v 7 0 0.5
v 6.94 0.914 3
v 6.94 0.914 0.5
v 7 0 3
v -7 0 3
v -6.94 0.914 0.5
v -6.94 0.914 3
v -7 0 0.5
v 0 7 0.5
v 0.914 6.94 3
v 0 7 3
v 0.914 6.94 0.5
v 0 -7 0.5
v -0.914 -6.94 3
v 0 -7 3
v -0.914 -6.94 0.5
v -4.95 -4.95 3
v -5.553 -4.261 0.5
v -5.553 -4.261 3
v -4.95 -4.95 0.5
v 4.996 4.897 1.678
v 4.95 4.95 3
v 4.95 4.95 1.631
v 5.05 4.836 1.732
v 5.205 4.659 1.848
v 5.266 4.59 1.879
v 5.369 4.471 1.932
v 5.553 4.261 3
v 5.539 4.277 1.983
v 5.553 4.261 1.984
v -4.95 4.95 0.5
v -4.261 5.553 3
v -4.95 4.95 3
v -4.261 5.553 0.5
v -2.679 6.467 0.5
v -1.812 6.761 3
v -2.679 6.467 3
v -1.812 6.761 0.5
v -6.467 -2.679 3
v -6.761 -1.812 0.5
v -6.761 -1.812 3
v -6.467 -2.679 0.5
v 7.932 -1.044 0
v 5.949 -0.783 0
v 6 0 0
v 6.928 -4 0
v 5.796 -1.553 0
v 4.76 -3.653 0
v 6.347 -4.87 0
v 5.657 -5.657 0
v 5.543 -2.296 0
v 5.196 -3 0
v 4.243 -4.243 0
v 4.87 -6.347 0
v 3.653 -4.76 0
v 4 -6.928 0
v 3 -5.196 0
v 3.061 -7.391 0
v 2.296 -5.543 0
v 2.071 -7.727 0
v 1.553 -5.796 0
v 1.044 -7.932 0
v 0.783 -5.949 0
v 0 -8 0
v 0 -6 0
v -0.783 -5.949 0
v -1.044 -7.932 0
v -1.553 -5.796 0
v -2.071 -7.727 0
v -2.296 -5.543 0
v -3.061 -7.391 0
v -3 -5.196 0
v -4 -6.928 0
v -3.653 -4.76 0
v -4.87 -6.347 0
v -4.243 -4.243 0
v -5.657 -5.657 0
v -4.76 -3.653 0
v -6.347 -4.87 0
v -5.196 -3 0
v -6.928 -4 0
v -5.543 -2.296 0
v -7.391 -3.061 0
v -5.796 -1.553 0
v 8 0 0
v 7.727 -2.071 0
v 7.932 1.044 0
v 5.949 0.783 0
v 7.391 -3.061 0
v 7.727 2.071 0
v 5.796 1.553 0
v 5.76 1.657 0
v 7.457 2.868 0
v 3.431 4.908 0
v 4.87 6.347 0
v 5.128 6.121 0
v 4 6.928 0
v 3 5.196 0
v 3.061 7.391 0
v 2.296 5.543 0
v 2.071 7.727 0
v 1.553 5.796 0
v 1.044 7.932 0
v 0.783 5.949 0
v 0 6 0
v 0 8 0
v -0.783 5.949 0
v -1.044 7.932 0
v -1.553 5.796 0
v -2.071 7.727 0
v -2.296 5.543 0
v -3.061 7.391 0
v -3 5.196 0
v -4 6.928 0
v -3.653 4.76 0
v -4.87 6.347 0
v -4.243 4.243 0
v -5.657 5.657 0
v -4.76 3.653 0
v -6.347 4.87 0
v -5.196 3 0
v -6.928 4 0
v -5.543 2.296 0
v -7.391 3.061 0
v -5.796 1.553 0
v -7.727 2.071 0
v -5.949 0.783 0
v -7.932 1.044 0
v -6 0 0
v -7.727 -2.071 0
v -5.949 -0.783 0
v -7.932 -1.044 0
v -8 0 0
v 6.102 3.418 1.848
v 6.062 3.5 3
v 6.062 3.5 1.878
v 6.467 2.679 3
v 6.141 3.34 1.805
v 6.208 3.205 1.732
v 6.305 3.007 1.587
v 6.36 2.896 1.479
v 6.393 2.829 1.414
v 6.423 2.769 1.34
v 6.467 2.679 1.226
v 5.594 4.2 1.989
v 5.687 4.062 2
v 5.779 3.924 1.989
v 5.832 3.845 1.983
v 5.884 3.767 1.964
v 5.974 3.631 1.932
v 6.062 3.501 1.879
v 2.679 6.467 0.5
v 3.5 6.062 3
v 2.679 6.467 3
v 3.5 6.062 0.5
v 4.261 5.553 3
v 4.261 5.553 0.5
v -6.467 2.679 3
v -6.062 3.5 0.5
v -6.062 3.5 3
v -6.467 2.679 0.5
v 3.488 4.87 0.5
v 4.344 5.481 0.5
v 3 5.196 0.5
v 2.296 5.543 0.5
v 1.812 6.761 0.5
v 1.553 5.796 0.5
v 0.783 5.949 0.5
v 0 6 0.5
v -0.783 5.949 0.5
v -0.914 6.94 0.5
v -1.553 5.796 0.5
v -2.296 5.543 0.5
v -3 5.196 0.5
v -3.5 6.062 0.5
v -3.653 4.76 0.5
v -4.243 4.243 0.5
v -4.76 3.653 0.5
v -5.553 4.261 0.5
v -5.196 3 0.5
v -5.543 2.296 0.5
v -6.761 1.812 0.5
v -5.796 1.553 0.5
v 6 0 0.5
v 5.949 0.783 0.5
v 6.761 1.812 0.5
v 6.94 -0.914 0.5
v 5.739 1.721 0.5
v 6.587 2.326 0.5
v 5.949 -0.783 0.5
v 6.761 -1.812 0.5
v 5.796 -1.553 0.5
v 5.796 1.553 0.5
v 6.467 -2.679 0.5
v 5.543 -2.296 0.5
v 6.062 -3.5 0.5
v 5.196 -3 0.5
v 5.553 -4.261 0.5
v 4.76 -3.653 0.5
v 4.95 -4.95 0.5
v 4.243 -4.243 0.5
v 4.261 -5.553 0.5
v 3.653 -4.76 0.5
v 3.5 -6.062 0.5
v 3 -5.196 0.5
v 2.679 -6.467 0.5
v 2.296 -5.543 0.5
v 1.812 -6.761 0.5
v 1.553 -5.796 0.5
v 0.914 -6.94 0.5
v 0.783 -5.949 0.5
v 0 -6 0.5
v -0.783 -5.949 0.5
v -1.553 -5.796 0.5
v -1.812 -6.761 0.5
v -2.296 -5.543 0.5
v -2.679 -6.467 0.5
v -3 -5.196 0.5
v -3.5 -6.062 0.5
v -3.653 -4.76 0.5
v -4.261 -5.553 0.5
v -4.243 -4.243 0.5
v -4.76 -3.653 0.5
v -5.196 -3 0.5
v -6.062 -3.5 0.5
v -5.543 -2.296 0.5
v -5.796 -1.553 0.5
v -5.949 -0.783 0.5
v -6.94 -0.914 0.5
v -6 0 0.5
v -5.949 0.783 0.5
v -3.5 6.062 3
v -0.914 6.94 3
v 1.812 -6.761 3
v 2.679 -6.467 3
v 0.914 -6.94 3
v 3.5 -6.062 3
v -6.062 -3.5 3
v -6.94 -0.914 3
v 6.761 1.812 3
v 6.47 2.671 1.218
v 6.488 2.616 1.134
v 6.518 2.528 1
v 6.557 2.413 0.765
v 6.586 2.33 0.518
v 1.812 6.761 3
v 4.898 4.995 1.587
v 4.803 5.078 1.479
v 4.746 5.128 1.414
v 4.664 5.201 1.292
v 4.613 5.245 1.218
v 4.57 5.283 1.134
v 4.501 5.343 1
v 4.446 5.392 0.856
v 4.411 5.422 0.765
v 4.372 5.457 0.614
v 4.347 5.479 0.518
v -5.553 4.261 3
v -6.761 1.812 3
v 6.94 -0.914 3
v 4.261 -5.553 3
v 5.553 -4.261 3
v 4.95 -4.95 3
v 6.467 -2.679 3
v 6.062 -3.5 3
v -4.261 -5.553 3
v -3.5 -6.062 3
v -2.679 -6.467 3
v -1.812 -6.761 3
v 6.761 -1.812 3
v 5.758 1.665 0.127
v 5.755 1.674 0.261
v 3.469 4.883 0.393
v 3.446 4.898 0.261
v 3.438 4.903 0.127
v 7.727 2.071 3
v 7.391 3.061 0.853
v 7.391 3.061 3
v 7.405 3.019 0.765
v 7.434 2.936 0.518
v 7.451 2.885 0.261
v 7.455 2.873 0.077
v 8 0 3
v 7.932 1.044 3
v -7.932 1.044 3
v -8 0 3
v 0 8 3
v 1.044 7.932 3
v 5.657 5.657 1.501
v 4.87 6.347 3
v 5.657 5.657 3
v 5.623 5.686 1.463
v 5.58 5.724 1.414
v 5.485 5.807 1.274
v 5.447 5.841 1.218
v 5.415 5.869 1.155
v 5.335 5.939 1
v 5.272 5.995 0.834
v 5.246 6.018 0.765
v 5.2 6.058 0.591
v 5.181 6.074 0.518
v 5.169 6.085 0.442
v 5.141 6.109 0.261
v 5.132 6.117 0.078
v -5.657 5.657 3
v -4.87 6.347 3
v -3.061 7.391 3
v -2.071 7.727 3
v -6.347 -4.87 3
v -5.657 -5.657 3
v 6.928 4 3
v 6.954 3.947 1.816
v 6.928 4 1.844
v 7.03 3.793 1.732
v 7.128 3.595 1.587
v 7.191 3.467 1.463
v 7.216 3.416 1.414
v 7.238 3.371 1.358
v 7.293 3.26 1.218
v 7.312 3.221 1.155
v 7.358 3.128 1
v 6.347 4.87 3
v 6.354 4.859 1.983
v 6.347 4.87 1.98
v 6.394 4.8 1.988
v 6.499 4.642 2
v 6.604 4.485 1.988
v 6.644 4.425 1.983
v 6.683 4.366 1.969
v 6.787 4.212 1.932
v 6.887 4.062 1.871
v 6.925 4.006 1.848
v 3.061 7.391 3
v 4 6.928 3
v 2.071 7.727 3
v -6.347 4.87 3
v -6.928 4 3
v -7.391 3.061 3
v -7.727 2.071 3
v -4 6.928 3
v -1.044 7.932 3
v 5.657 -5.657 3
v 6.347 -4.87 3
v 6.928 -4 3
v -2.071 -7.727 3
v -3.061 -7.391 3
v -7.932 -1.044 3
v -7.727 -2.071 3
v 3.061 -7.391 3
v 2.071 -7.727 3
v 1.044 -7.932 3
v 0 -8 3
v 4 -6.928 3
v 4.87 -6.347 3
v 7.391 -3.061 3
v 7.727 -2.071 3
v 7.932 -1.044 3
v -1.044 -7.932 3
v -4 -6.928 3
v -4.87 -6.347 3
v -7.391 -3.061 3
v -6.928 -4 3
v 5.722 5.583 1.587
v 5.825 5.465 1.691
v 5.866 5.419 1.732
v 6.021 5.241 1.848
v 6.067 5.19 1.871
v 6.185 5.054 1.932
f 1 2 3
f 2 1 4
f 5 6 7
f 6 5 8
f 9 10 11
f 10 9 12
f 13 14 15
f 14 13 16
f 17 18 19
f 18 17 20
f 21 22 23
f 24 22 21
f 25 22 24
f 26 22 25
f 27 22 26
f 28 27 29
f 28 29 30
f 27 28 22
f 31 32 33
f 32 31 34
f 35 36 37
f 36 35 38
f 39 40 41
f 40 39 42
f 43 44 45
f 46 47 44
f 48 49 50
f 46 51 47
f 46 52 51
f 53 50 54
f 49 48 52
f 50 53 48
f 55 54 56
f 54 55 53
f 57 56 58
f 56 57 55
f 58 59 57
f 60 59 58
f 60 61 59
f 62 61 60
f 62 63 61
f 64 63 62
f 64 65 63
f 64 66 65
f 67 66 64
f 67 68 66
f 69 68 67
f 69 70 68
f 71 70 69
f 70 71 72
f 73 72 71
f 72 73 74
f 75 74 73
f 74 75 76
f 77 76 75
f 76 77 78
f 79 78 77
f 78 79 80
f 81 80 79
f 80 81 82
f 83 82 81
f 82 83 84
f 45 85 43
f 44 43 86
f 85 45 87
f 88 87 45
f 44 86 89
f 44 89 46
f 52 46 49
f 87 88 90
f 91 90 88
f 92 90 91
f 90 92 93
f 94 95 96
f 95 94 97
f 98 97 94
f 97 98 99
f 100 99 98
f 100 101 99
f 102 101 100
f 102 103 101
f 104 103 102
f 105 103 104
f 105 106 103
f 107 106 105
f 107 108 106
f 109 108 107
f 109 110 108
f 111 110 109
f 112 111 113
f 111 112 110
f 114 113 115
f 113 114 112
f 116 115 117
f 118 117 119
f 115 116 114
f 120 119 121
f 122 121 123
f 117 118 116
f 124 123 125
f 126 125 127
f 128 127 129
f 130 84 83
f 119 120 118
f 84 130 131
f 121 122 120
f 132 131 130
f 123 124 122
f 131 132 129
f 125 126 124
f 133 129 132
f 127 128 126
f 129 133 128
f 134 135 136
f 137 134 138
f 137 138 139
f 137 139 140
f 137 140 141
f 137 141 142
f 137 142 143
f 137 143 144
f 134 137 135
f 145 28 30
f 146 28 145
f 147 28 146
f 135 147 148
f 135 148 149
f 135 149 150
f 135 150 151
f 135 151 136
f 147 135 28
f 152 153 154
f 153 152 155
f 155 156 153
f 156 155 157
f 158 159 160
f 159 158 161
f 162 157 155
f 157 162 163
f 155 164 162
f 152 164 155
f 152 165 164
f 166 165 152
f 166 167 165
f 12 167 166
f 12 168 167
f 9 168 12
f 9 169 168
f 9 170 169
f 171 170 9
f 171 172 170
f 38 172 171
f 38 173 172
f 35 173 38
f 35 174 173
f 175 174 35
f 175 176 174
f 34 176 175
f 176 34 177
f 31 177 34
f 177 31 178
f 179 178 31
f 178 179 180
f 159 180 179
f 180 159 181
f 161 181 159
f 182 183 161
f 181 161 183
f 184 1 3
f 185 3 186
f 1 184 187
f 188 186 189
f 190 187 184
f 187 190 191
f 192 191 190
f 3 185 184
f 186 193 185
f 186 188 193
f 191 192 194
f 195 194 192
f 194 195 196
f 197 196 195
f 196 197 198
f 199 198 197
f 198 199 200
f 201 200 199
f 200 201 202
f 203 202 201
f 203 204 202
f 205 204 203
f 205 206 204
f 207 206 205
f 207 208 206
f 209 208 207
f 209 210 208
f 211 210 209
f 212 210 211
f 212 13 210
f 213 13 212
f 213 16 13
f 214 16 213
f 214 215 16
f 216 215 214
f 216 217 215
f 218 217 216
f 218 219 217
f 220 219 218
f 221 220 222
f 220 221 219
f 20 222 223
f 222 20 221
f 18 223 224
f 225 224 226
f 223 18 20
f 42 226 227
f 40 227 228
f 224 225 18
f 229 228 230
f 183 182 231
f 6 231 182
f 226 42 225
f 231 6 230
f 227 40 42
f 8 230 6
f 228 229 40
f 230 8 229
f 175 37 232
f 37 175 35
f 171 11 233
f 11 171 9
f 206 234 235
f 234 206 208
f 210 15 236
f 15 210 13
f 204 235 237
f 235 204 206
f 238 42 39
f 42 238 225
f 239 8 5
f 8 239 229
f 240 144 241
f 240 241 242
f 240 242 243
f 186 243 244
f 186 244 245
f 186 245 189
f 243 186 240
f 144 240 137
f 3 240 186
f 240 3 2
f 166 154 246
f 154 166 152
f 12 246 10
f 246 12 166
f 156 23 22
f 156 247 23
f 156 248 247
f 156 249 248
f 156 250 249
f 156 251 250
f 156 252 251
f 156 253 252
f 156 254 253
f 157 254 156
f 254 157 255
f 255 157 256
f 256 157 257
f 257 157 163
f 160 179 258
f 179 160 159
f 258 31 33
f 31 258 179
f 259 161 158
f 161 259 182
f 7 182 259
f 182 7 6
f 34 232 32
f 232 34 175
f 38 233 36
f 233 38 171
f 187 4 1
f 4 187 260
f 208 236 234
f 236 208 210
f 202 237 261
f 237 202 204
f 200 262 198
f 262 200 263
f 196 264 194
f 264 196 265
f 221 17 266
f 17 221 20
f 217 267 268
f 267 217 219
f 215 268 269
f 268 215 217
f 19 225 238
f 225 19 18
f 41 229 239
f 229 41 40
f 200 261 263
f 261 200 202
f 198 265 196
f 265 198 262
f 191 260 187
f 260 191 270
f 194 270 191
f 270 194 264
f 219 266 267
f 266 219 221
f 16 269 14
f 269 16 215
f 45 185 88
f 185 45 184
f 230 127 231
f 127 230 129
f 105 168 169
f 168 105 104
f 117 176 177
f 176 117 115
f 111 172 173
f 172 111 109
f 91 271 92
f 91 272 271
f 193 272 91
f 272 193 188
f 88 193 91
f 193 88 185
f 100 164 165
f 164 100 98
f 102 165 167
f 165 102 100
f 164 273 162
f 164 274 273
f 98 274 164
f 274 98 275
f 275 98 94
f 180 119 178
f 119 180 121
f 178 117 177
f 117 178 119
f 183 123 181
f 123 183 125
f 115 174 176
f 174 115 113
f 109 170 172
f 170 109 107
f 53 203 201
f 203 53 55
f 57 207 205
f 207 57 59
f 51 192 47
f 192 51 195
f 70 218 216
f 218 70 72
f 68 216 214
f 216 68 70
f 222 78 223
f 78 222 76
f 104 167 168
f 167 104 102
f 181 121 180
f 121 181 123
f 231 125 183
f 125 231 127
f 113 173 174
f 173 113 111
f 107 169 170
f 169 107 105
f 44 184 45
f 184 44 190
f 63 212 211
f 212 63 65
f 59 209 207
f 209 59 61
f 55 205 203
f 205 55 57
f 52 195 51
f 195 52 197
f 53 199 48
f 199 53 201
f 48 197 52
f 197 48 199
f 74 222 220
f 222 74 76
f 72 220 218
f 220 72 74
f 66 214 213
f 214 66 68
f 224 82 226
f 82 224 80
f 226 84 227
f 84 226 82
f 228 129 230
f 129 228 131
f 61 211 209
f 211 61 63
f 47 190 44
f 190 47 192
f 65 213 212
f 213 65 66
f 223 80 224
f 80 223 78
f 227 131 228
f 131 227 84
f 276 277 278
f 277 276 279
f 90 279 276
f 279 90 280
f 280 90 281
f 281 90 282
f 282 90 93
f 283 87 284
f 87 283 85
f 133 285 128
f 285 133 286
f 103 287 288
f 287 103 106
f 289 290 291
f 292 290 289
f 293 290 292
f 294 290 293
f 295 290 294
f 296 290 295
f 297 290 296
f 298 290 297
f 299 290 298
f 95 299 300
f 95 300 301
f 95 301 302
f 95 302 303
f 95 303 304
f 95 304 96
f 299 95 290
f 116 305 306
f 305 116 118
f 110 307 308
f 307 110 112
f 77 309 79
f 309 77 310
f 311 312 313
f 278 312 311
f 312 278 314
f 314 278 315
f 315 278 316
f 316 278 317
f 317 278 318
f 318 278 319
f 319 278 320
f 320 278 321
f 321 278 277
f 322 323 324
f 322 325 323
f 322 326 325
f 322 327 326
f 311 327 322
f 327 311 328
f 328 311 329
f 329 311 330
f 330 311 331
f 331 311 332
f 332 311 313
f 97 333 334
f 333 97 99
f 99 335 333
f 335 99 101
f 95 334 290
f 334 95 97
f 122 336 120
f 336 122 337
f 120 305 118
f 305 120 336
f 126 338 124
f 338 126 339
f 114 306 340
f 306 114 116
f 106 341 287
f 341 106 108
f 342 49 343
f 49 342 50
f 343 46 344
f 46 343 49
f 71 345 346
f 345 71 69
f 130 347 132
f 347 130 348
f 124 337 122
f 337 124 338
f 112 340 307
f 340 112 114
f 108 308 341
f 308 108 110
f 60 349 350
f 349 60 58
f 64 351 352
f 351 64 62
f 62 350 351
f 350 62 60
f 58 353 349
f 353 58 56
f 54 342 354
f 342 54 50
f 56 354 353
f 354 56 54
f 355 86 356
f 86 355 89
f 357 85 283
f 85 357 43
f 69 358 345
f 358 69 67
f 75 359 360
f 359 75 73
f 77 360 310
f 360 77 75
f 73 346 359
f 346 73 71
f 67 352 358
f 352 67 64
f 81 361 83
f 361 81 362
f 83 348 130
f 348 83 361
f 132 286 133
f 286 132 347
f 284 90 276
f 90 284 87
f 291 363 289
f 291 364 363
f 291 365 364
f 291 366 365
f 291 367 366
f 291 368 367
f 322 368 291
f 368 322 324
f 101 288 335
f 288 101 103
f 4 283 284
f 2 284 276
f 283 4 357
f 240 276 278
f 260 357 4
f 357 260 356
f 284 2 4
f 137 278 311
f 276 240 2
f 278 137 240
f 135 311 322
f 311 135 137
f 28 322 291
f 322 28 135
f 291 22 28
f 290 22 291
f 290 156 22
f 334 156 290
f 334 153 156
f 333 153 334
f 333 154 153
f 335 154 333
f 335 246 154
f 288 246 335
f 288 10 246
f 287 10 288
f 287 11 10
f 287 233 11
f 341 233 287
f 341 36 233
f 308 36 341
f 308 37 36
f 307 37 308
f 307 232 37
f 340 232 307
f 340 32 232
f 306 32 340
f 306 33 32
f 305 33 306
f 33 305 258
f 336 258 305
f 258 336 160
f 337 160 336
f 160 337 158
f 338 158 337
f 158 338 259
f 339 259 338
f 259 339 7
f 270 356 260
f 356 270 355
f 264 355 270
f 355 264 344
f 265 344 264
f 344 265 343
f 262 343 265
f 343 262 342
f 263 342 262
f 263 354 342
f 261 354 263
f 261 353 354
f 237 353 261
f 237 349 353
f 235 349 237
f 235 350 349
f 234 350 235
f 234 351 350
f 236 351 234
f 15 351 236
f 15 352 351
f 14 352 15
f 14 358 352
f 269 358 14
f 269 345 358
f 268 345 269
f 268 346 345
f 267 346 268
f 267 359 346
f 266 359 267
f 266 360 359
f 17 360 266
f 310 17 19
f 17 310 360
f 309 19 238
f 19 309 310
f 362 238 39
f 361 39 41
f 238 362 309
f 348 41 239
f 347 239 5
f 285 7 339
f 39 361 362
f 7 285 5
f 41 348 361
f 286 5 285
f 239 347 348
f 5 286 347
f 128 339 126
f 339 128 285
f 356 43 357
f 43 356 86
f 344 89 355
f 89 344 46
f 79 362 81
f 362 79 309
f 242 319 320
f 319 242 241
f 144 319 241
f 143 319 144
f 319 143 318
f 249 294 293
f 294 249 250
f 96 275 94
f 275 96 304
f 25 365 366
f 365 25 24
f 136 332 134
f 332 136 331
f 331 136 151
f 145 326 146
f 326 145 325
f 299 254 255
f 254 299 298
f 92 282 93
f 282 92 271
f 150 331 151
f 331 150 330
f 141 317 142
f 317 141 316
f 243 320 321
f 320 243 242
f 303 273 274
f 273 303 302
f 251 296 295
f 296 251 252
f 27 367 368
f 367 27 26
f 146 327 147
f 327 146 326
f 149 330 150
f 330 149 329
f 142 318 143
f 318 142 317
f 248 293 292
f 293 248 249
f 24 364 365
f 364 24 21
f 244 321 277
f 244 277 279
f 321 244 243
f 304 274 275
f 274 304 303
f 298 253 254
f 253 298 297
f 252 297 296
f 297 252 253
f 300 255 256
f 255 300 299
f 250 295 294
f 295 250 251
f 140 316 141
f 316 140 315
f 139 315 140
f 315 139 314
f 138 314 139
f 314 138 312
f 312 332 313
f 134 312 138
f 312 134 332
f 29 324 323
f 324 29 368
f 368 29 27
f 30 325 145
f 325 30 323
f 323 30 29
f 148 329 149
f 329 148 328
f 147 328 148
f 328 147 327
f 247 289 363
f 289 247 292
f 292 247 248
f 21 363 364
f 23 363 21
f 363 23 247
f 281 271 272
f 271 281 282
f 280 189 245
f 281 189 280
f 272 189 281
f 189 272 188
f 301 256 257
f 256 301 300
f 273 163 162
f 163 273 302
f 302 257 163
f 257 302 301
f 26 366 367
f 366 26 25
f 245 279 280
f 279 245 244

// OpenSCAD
// file: ../build_environments.scad
// build_environments.scad: modules to build level sections
//

module pool(diameter=10.0, wall_height=2.0, step_width=3.0, connections=[])
{
    difference() {
        union() {
        difference() {
            cylinder(h=0.5,r1=diameter+step_width,r2=diameter+step_width,$fn=48);
            translate([0,0,-0.1])
                cylinder(h=0.7,r1=diameter,r2=diameter,$fn=48);
        }
        difference() {
            cylinder(h=wall_height,r1=diameter+step_width+1.0,r2=diameter+step_width+1.0,$fn=48);
            translate([0,0,-0.1])
                cylinder(h=wall_height+0.2,r1=diameter+step_width,r2=diameter+step_width,$fn=48);
        }
        }
    
        for (c = connections)
        {
            rotate([0,90,0]) {
                angle = atan2(c[1],c[0]);
                rotate([-angle,0,0]) {
                    cylinder(h=diameter+5.0,r1=c[2],r2=c[2],$fn=48);
                }
            }
        }
    }
}

module straight(length=10.0, width=2.0, dy1=0.0, dy2=0.0, dz=0.0)
{
    dims = [0, 0, 0, 0, 0, (dz/length)];
    matrix = [
        [ 1, dims[0], dims[1], 0 ],
        [ dims[2], 1, dims[4], 0 ],
        [ dims[5], dims[3], 1, 0 ],
        [ 0, 0, 0, 1 ]
    ];
    multmatrix(matrix)
    difference() {
        translate([dy1,0,0])
        union() {
            rotate([0,90,0]) {
                difference() {
                    cylinder(h=(length-dy1-dy2),r1=width+1.0,r2=width+1.0,$fn=24);
                    translate([0,0,-0.1])
                        cylinder(h=(length-dy1-dy2+0.2),r1=width,r2=width,$fn=24);
                }
                difference() {
                    cylinder(h=1.0,r1=width+2.0,r2=width+2.0,$fn=24);
                    translate([0,0,-0.1])
                        cylinder(h=1.2,r1=width,r2=width,$fn=24);
                }
                translate([0,0,(length-dy1-dy2)-1.0]) {
                    difference() {
                        cylinder(h=1.0,r1=width+2.0,r2=width+2.0,$fn=24);
                        translate([0,0,-0.1])
                            cylinder(h=1.2,r1=width,r2=width,$fn=24);
                    }
                }
            }
        }
        translate([0,0,-(2*width+4.0)/2])
            cube([3*length,3*length,2*width+4.0],center=true);
    }
}

module curve(p0=[0,0], center=[0,0], dir=1, angle=0.0, width=2.0)
{
    radius = sqrt((p0[0]-center[0])*(p0[0]-center[0]) + (p0[1]-center[1])*(p0[1]-center[1]));
    if (dir == 0) {
        difference() {
            rotate([0,0,-90])
            difference() {
                rotate_extrude(angle = angle, convexity = 10, $fn=32)
                    translate([radius, 0, 0])
                        circle(r = width+1.0,$fn=24);
                rotate([0,0,-1.0])
                    rotate_extrude(angle = angle+2.0, convexity = 10, $fn=32)
                        translate([radius, 0, 0])
                            circle(r = width,$fn=24);
            }
            translate([0,0,-(2*width+4.0)/2])
                cube([5*radius,5*radius,2*width+4.0],center=true);
        }
    }
    else {
        difference() {
            rotate([0,0,90])
            difference() {
                rotate_extrude(angle = -angle, convexity = 10, $fn=32)
                    translate([radius, 0, 0])
                        circle(r = width+1.0,$fn=24);
                rotate([0,0,1.0])
                    rotate_extrude(angle = -angle-2.0, convexity = 10, $fn=32)
                        translate([radius, 0, 0])
                            circle(r = width,$fn=24);
            }
            translate([0,0,-(2*width+4.0)/2])
                cube([5*radius,5*radius,2*width+4.0],center=true);
        }
    }

}

// test pool
//pool(diameter=12.0000, wall_height=3.0000, step_width=3.0000, connections=[[0.0000,-26.0000,2.0000], [23.6074,0.0000,2.0000]]);

// test straight, slope
//straight(length=26.0000, width=2.0000, dy1=11.8322, dy2=6.7082, dz=0.0000);
//straight(length=29.1549, width=12.0000, dy1=0.0000, dy2=0.0000, dz=-15.0000);

// test curve
//curve(p0=[23.6074, 0.0000], center=[23.6074, 5.0000], dir=0, angle=60.1011, width=2.0000);
//curve(p0=[33.6426, 12.4219], center=[37.9771, 9.9295], dir=1, angle=120.4627, width=2.0000);
// main file
use <../build_environments.scad>;
pool(diameter=6.0000, wall_height=3.0000, step_width=1.0000, connections=[[14.0000,10.0000,2.0000]]);
